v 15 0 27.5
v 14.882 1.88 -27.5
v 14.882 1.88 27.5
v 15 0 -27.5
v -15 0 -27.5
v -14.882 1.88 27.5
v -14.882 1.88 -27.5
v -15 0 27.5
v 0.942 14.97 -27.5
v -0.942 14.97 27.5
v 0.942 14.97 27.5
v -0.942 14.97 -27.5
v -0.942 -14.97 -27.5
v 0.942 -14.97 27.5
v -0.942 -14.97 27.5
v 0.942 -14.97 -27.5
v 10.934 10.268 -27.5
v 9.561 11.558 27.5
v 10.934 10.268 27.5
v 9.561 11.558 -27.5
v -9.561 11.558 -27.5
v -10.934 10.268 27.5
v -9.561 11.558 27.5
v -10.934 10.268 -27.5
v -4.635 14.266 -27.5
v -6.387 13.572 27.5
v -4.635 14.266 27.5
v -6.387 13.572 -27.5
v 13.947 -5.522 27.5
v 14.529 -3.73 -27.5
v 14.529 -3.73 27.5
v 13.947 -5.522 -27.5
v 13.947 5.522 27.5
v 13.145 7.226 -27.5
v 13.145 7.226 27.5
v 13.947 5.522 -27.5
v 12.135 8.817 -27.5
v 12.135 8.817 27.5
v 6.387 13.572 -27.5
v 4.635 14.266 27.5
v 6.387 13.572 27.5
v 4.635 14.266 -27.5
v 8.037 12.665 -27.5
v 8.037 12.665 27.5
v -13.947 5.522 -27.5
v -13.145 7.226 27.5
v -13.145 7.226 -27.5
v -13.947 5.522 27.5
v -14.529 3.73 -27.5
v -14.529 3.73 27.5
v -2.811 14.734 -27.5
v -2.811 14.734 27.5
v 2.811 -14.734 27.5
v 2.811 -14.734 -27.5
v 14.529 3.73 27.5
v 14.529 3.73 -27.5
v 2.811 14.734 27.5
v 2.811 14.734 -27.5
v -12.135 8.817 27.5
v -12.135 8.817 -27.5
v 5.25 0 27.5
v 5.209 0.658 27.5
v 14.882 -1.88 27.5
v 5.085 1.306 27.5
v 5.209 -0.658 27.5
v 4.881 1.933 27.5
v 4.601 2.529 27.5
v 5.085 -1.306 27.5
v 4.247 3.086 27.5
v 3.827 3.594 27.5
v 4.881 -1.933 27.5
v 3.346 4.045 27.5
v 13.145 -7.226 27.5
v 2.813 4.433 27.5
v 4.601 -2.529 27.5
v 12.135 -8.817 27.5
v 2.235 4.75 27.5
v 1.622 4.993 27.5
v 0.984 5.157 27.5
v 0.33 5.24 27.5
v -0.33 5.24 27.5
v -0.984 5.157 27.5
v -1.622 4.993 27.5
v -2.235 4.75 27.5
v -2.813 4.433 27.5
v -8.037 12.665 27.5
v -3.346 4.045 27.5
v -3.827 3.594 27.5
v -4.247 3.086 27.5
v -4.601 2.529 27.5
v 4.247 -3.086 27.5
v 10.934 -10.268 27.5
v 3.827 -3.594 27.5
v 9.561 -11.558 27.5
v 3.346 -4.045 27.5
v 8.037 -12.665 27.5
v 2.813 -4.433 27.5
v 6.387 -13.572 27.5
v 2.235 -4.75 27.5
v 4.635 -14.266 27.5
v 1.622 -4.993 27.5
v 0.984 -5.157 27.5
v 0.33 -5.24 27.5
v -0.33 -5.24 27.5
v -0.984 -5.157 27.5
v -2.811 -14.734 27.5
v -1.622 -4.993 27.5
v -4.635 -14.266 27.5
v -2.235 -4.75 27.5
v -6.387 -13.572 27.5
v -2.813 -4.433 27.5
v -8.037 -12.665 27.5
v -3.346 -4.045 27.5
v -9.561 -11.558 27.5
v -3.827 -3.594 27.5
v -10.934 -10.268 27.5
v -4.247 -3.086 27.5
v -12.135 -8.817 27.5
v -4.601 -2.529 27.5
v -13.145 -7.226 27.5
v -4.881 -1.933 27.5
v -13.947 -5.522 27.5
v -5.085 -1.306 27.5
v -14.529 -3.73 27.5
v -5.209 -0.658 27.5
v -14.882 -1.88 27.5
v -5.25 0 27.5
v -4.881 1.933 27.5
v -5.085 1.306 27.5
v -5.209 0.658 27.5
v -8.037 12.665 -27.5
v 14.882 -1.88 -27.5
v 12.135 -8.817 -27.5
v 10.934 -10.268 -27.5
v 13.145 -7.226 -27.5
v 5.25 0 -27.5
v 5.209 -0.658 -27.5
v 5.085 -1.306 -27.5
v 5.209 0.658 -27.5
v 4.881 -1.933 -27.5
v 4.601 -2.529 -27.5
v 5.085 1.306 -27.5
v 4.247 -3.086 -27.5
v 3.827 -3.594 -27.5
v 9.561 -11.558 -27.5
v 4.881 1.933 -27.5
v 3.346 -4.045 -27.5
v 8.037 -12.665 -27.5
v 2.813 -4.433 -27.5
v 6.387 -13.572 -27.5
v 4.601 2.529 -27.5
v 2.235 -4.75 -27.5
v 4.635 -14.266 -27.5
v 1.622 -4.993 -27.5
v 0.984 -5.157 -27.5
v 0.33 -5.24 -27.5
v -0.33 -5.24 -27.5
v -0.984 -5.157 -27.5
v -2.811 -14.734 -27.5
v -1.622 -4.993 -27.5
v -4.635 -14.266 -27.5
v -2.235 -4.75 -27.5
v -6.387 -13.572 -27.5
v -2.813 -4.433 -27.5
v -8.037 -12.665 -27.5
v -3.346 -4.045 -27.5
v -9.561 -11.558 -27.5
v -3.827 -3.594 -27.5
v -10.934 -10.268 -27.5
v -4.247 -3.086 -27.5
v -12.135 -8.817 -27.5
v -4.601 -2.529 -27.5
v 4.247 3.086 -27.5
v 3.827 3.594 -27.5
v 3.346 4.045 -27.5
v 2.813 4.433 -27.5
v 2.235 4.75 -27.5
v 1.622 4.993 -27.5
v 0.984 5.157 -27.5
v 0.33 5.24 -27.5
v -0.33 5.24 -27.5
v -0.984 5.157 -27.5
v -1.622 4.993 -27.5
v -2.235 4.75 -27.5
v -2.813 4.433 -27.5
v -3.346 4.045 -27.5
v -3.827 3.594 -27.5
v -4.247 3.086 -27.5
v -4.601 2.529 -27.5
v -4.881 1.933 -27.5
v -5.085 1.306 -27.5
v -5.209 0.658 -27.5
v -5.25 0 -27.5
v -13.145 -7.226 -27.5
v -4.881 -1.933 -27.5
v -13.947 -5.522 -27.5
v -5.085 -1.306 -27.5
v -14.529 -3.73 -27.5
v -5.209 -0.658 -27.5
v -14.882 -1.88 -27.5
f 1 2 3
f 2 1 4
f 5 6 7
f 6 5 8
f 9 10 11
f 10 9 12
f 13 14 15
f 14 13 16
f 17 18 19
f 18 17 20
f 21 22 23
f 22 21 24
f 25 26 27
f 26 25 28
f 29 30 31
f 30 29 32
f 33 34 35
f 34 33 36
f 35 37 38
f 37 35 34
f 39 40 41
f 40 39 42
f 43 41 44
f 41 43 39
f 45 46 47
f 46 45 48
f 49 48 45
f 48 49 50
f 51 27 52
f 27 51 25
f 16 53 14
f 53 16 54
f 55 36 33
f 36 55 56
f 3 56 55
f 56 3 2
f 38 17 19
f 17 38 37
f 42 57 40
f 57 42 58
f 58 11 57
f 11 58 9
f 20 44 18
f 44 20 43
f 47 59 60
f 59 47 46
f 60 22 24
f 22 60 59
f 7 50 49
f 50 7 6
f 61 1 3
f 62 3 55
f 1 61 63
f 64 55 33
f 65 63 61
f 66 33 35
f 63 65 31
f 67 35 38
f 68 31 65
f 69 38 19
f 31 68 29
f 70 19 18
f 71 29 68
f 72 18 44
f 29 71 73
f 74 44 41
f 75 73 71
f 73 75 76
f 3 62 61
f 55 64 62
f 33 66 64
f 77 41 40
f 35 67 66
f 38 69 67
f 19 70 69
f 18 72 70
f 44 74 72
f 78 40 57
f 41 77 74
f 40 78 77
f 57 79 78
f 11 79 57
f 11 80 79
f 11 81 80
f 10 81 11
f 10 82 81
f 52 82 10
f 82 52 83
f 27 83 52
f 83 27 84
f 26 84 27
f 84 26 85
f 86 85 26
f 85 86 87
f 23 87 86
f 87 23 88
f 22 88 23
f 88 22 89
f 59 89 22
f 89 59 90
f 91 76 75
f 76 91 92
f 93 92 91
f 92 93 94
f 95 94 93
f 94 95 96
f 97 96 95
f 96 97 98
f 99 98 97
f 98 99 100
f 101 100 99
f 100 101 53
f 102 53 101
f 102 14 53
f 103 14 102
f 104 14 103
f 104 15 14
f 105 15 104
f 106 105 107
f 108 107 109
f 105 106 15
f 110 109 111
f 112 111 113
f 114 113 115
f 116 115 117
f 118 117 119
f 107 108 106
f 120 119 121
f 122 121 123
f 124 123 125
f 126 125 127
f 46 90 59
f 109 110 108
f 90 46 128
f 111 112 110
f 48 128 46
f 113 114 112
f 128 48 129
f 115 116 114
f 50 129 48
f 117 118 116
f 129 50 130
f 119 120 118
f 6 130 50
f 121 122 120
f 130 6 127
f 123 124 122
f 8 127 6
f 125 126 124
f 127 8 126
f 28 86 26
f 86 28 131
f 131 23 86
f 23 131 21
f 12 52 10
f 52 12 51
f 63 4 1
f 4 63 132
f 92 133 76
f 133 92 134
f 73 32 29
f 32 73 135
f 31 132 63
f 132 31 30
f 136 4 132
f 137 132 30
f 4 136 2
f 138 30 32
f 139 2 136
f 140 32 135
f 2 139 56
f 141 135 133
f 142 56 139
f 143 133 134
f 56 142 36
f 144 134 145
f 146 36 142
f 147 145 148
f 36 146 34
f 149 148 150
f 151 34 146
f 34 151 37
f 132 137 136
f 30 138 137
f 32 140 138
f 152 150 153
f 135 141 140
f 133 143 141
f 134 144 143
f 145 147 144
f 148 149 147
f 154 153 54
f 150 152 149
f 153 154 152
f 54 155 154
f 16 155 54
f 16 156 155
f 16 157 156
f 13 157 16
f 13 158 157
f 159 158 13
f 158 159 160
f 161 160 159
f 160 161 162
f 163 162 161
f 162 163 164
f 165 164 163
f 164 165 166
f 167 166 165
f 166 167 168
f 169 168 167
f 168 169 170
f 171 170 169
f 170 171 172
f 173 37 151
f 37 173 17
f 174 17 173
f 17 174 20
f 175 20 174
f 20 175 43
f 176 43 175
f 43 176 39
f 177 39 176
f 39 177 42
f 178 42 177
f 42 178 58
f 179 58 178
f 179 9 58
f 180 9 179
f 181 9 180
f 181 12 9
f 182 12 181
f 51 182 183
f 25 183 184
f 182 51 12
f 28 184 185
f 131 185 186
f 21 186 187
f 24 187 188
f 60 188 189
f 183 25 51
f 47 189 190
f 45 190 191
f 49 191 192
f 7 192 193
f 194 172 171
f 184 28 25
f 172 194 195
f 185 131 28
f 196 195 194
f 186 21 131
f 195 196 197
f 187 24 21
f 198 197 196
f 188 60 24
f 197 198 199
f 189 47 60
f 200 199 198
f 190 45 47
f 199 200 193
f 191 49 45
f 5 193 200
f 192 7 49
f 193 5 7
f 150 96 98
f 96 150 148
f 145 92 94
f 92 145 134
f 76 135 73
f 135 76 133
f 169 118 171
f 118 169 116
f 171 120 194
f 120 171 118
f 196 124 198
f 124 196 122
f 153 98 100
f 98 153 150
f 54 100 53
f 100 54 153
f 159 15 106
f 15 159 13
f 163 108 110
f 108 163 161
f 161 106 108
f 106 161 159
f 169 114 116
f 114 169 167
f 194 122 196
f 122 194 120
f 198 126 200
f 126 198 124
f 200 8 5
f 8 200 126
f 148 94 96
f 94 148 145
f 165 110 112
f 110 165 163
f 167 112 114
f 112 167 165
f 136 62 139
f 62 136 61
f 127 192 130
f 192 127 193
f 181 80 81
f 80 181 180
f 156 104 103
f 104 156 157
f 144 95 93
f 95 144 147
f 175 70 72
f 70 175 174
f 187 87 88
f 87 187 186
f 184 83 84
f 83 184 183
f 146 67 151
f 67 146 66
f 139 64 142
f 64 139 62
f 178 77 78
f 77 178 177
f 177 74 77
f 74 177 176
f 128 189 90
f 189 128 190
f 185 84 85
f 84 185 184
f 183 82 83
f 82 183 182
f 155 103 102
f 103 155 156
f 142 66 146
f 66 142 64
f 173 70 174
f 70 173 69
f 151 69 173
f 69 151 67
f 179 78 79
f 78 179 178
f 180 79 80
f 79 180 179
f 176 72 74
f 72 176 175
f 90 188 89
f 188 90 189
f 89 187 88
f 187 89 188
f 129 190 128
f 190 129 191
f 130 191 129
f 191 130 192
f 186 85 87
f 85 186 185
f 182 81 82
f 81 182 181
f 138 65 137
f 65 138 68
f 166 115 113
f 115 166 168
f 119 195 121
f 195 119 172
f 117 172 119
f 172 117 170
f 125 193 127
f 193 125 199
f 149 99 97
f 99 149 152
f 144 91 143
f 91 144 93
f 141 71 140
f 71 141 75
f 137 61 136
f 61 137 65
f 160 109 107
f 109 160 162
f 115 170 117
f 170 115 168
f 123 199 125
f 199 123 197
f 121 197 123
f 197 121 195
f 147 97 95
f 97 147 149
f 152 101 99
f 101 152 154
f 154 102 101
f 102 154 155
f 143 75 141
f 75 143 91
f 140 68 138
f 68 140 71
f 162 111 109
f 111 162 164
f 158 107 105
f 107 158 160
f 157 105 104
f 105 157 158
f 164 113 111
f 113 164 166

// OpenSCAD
$fn = 50;


difference() {
	union() {
		translate(v = [0, 0, -27.5000000000]) {
			cylinder(h = 55, r = 15.0000000000);
		}
	}
	union() {
		translate(v = [0, 0, -100.0000000000]) {
			cylinder(h = 200, r = 5.2500000000);
		}
	}
}
